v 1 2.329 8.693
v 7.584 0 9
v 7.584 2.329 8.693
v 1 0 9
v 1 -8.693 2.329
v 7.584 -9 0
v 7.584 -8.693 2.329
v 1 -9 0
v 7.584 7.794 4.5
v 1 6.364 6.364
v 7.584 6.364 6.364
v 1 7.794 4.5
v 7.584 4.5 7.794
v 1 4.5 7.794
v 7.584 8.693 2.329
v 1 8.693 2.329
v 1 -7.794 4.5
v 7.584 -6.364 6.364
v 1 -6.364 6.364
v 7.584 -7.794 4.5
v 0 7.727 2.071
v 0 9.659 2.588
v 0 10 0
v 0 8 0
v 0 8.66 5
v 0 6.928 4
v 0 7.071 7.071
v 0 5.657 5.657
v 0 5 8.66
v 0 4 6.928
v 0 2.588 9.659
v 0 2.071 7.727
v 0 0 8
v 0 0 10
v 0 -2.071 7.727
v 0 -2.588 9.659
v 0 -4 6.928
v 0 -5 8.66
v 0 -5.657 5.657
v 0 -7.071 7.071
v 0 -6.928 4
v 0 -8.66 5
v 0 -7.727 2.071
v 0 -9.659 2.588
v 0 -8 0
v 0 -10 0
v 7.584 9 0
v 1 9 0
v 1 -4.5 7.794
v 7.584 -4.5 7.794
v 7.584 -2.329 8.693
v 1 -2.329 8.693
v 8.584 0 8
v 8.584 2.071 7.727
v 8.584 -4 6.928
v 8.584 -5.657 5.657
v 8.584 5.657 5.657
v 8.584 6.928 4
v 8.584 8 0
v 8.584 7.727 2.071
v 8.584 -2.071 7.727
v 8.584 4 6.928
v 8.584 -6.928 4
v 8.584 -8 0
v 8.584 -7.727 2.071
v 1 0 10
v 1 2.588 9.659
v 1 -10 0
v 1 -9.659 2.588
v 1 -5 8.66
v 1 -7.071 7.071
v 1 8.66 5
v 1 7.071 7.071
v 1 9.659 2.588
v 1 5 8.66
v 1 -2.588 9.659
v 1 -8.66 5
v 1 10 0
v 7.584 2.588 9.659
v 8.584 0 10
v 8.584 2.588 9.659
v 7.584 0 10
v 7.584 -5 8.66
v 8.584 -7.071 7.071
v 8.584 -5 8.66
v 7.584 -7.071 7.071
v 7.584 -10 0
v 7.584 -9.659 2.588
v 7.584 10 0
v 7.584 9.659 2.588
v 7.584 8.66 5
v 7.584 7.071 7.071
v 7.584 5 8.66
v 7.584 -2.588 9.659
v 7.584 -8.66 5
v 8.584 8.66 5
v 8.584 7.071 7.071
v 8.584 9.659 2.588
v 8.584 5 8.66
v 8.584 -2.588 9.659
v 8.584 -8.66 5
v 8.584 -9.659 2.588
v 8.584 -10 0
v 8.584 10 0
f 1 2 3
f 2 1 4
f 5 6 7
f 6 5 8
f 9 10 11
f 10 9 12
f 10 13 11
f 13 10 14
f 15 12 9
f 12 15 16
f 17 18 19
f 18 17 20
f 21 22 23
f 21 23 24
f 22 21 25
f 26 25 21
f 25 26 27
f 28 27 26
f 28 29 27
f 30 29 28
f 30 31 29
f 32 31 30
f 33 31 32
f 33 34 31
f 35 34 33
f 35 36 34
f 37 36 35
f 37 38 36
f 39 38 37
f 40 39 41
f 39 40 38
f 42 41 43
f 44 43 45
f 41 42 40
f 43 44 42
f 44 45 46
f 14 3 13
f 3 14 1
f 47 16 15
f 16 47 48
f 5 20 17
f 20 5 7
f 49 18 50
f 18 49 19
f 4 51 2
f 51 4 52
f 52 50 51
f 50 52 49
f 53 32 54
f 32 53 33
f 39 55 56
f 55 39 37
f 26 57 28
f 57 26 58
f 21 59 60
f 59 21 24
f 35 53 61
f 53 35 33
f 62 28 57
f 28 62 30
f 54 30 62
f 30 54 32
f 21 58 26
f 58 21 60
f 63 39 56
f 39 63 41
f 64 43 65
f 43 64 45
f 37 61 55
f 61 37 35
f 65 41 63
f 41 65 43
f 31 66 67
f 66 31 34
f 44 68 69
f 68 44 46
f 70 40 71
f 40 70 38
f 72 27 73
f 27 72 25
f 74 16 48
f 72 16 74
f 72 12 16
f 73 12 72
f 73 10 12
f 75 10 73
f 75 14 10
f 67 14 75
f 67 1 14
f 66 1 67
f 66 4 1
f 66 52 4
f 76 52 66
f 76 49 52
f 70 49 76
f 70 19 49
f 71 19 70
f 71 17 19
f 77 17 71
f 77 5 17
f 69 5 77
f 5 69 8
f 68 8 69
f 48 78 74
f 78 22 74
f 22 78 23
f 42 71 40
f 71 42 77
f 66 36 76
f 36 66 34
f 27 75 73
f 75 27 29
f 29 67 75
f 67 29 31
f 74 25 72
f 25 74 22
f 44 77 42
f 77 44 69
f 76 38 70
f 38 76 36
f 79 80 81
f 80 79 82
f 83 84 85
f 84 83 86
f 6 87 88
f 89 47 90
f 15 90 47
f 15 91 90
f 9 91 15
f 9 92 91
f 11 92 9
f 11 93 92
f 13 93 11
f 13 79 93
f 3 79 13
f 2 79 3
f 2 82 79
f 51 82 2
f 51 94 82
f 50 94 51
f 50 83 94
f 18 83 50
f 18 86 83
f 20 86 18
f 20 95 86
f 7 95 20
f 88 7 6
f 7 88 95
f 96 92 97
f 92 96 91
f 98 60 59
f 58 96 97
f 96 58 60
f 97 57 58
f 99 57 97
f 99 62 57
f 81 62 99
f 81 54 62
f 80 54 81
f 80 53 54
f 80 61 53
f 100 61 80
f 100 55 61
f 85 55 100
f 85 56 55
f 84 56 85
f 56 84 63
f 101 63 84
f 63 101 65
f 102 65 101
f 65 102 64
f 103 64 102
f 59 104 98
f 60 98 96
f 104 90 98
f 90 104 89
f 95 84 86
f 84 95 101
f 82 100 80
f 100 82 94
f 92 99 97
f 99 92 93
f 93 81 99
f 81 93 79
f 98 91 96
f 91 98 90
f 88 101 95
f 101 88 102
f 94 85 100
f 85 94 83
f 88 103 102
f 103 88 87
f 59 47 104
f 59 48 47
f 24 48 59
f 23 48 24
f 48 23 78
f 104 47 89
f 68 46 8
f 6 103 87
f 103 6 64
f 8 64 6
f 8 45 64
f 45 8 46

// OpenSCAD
// file: ../build_environments.scad
// build_environments.scad: modules to build level sections
//

module pool(diameter=10.0, wall_height=2.0, step_width=3.0, connections=[])
{
    difference() {
        union() {
        difference() {
            cylinder(h=0.5,r1=diameter+step_width,r2=diameter+step_width,$fn=48);
            translate([0,0,-0.1])
                cylinder(h=0.7,r1=diameter,r2=diameter,$fn=48);
        }
        difference() {
            cylinder(h=wall_height,r1=diameter+step_width+1.0,r2=diameter+step_width+1.0,$fn=48);
            translate([0,0,-0.1])
                cylinder(h=wall_height+0.2,r1=diameter+step_width,r2=diameter+step_width,$fn=48);
        }
        }
    
        for (c = connections)
        {
            rotate([0,90,0]) {
                angle = atan2(c[1],c[0]);
                rotate([-angle,0,0]) {
                    cylinder(h=diameter+5.0,r1=c[2],r2=c[2],$fn=48);
                }
            }
        }
    }
}

module straight(length=10.0, width=2.0, dy1=0.0, dy2=0.0, dz=0.0)
{
    dims = [0, 0, 0, 0, 0, (dz/length)];
    matrix = [
        [ 1, dims[0], dims[1], 0 ],
        [ dims[2], 1, dims[4], 0 ],
        [ dims[5], dims[3], 1, 0 ],
        [ 0, 0, 0, 1 ]
    ];
    multmatrix(matrix)
    difference() {
        translate([dy1,0,0])
        union() {
            rotate([0,90,0]) {
                difference() {
                    cylinder(h=(length-dy1-dy2),r1=width+1.0,r2=width+1.0,$fn=24);
                    translate([0,0,-0.1])
                        cylinder(h=(length-dy1-dy2+0.2),r1=width,r2=width,$fn=24);
                }
                difference() {
                    cylinder(h=1.0,r1=width+2.0,r2=width+2.0,$fn=24);
                    translate([0,0,-0.1])
                        cylinder(h=1.2,r1=width,r2=width,$fn=24);
                }
                translate([0,0,(length-dy1-dy2)-1.0]) {
                    difference() {
                        cylinder(h=1.0,r1=width+2.0,r2=width+2.0,$fn=24);
                        translate([0,0,-0.1])
                            cylinder(h=1.2,r1=width,r2=width,$fn=24);
                    }
                }
            }
        }
        translate([0,0,-(2*width+4.0)/2])
            cube([3*length,3*length,2*width+4.0],center=true);
    }
}

module curve(p0=[0,0], center=[0,0], dir=1, angle=0.0, width=2.0)
{
    radius = sqrt((p0[0]-center[0])*(p0[0]-center[0]) + (p0[1]-center[1])*(p0[1]-center[1]));
    if (dir == 0) {
        difference() {
            rotate([0,0,-90])
            difference() {
                rotate_extrude(angle = angle, convexity = 10, $fn=32)
                    translate([radius, 0, 0])
                        circle(r = width+1.0,$fn=24);
                rotate([0,0,-1.0])
                    rotate_extrude(angle = angle+2.0, convexity = 10, $fn=32)
                        translate([radius, 0, 0])
                            circle(r = width,$fn=24);
            }
            translate([0,0,-(2*width+4.0)/2])
                cube([5*radius,5*radius,2*width+4.0],center=true);
        }
    }
    else {
        difference() {
            rotate([0,0,90])
            difference() {
                rotate_extrude(angle = -angle, convexity = 10, $fn=32)
                    translate([radius, 0, 0])
                        circle(r = width+1.0,$fn=24);
                rotate([0,0,1.0])
                    rotate_extrude(angle = -angle-2.0, convexity = 10, $fn=32)
                        translate([radius, 0, 0])
                            circle(r = width,$fn=24);
            }
            translate([0,0,-(2*width+4.0)/2])
                cube([5*radius,5*radius,2*width+4.0],center=true);
        }
    }

}

// test pool
//pool(diameter=12.0000, wall_height=3.0000, step_width=3.0000, connections=[[0.0000,-26.0000,2.0000], [23.6074,0.0000,2.0000]]);

// test straight, slope
//straight(length=26.0000, width=2.0000, dy1=11.8322, dy2=6.7082, dz=0.0000);
//straight(length=29.1549, width=12.0000, dy1=0.0000, dy2=0.0000, dz=-15.0000);

// test curve
//curve(p0=[23.6074, 0.0000], center=[23.6074, 5.0000], dir=0, angle=60.1011, width=2.0000);
//curve(p0=[33.6426, 12.4219], center=[37.9771, 9.9295], dir=1, angle=120.4627, width=2.0000);
// main file
use <../build_environments.scad>;
straight(length=8.5835, width=8.0000, dy1=0.0000, dy2=0.0000, dz=0.0000);
